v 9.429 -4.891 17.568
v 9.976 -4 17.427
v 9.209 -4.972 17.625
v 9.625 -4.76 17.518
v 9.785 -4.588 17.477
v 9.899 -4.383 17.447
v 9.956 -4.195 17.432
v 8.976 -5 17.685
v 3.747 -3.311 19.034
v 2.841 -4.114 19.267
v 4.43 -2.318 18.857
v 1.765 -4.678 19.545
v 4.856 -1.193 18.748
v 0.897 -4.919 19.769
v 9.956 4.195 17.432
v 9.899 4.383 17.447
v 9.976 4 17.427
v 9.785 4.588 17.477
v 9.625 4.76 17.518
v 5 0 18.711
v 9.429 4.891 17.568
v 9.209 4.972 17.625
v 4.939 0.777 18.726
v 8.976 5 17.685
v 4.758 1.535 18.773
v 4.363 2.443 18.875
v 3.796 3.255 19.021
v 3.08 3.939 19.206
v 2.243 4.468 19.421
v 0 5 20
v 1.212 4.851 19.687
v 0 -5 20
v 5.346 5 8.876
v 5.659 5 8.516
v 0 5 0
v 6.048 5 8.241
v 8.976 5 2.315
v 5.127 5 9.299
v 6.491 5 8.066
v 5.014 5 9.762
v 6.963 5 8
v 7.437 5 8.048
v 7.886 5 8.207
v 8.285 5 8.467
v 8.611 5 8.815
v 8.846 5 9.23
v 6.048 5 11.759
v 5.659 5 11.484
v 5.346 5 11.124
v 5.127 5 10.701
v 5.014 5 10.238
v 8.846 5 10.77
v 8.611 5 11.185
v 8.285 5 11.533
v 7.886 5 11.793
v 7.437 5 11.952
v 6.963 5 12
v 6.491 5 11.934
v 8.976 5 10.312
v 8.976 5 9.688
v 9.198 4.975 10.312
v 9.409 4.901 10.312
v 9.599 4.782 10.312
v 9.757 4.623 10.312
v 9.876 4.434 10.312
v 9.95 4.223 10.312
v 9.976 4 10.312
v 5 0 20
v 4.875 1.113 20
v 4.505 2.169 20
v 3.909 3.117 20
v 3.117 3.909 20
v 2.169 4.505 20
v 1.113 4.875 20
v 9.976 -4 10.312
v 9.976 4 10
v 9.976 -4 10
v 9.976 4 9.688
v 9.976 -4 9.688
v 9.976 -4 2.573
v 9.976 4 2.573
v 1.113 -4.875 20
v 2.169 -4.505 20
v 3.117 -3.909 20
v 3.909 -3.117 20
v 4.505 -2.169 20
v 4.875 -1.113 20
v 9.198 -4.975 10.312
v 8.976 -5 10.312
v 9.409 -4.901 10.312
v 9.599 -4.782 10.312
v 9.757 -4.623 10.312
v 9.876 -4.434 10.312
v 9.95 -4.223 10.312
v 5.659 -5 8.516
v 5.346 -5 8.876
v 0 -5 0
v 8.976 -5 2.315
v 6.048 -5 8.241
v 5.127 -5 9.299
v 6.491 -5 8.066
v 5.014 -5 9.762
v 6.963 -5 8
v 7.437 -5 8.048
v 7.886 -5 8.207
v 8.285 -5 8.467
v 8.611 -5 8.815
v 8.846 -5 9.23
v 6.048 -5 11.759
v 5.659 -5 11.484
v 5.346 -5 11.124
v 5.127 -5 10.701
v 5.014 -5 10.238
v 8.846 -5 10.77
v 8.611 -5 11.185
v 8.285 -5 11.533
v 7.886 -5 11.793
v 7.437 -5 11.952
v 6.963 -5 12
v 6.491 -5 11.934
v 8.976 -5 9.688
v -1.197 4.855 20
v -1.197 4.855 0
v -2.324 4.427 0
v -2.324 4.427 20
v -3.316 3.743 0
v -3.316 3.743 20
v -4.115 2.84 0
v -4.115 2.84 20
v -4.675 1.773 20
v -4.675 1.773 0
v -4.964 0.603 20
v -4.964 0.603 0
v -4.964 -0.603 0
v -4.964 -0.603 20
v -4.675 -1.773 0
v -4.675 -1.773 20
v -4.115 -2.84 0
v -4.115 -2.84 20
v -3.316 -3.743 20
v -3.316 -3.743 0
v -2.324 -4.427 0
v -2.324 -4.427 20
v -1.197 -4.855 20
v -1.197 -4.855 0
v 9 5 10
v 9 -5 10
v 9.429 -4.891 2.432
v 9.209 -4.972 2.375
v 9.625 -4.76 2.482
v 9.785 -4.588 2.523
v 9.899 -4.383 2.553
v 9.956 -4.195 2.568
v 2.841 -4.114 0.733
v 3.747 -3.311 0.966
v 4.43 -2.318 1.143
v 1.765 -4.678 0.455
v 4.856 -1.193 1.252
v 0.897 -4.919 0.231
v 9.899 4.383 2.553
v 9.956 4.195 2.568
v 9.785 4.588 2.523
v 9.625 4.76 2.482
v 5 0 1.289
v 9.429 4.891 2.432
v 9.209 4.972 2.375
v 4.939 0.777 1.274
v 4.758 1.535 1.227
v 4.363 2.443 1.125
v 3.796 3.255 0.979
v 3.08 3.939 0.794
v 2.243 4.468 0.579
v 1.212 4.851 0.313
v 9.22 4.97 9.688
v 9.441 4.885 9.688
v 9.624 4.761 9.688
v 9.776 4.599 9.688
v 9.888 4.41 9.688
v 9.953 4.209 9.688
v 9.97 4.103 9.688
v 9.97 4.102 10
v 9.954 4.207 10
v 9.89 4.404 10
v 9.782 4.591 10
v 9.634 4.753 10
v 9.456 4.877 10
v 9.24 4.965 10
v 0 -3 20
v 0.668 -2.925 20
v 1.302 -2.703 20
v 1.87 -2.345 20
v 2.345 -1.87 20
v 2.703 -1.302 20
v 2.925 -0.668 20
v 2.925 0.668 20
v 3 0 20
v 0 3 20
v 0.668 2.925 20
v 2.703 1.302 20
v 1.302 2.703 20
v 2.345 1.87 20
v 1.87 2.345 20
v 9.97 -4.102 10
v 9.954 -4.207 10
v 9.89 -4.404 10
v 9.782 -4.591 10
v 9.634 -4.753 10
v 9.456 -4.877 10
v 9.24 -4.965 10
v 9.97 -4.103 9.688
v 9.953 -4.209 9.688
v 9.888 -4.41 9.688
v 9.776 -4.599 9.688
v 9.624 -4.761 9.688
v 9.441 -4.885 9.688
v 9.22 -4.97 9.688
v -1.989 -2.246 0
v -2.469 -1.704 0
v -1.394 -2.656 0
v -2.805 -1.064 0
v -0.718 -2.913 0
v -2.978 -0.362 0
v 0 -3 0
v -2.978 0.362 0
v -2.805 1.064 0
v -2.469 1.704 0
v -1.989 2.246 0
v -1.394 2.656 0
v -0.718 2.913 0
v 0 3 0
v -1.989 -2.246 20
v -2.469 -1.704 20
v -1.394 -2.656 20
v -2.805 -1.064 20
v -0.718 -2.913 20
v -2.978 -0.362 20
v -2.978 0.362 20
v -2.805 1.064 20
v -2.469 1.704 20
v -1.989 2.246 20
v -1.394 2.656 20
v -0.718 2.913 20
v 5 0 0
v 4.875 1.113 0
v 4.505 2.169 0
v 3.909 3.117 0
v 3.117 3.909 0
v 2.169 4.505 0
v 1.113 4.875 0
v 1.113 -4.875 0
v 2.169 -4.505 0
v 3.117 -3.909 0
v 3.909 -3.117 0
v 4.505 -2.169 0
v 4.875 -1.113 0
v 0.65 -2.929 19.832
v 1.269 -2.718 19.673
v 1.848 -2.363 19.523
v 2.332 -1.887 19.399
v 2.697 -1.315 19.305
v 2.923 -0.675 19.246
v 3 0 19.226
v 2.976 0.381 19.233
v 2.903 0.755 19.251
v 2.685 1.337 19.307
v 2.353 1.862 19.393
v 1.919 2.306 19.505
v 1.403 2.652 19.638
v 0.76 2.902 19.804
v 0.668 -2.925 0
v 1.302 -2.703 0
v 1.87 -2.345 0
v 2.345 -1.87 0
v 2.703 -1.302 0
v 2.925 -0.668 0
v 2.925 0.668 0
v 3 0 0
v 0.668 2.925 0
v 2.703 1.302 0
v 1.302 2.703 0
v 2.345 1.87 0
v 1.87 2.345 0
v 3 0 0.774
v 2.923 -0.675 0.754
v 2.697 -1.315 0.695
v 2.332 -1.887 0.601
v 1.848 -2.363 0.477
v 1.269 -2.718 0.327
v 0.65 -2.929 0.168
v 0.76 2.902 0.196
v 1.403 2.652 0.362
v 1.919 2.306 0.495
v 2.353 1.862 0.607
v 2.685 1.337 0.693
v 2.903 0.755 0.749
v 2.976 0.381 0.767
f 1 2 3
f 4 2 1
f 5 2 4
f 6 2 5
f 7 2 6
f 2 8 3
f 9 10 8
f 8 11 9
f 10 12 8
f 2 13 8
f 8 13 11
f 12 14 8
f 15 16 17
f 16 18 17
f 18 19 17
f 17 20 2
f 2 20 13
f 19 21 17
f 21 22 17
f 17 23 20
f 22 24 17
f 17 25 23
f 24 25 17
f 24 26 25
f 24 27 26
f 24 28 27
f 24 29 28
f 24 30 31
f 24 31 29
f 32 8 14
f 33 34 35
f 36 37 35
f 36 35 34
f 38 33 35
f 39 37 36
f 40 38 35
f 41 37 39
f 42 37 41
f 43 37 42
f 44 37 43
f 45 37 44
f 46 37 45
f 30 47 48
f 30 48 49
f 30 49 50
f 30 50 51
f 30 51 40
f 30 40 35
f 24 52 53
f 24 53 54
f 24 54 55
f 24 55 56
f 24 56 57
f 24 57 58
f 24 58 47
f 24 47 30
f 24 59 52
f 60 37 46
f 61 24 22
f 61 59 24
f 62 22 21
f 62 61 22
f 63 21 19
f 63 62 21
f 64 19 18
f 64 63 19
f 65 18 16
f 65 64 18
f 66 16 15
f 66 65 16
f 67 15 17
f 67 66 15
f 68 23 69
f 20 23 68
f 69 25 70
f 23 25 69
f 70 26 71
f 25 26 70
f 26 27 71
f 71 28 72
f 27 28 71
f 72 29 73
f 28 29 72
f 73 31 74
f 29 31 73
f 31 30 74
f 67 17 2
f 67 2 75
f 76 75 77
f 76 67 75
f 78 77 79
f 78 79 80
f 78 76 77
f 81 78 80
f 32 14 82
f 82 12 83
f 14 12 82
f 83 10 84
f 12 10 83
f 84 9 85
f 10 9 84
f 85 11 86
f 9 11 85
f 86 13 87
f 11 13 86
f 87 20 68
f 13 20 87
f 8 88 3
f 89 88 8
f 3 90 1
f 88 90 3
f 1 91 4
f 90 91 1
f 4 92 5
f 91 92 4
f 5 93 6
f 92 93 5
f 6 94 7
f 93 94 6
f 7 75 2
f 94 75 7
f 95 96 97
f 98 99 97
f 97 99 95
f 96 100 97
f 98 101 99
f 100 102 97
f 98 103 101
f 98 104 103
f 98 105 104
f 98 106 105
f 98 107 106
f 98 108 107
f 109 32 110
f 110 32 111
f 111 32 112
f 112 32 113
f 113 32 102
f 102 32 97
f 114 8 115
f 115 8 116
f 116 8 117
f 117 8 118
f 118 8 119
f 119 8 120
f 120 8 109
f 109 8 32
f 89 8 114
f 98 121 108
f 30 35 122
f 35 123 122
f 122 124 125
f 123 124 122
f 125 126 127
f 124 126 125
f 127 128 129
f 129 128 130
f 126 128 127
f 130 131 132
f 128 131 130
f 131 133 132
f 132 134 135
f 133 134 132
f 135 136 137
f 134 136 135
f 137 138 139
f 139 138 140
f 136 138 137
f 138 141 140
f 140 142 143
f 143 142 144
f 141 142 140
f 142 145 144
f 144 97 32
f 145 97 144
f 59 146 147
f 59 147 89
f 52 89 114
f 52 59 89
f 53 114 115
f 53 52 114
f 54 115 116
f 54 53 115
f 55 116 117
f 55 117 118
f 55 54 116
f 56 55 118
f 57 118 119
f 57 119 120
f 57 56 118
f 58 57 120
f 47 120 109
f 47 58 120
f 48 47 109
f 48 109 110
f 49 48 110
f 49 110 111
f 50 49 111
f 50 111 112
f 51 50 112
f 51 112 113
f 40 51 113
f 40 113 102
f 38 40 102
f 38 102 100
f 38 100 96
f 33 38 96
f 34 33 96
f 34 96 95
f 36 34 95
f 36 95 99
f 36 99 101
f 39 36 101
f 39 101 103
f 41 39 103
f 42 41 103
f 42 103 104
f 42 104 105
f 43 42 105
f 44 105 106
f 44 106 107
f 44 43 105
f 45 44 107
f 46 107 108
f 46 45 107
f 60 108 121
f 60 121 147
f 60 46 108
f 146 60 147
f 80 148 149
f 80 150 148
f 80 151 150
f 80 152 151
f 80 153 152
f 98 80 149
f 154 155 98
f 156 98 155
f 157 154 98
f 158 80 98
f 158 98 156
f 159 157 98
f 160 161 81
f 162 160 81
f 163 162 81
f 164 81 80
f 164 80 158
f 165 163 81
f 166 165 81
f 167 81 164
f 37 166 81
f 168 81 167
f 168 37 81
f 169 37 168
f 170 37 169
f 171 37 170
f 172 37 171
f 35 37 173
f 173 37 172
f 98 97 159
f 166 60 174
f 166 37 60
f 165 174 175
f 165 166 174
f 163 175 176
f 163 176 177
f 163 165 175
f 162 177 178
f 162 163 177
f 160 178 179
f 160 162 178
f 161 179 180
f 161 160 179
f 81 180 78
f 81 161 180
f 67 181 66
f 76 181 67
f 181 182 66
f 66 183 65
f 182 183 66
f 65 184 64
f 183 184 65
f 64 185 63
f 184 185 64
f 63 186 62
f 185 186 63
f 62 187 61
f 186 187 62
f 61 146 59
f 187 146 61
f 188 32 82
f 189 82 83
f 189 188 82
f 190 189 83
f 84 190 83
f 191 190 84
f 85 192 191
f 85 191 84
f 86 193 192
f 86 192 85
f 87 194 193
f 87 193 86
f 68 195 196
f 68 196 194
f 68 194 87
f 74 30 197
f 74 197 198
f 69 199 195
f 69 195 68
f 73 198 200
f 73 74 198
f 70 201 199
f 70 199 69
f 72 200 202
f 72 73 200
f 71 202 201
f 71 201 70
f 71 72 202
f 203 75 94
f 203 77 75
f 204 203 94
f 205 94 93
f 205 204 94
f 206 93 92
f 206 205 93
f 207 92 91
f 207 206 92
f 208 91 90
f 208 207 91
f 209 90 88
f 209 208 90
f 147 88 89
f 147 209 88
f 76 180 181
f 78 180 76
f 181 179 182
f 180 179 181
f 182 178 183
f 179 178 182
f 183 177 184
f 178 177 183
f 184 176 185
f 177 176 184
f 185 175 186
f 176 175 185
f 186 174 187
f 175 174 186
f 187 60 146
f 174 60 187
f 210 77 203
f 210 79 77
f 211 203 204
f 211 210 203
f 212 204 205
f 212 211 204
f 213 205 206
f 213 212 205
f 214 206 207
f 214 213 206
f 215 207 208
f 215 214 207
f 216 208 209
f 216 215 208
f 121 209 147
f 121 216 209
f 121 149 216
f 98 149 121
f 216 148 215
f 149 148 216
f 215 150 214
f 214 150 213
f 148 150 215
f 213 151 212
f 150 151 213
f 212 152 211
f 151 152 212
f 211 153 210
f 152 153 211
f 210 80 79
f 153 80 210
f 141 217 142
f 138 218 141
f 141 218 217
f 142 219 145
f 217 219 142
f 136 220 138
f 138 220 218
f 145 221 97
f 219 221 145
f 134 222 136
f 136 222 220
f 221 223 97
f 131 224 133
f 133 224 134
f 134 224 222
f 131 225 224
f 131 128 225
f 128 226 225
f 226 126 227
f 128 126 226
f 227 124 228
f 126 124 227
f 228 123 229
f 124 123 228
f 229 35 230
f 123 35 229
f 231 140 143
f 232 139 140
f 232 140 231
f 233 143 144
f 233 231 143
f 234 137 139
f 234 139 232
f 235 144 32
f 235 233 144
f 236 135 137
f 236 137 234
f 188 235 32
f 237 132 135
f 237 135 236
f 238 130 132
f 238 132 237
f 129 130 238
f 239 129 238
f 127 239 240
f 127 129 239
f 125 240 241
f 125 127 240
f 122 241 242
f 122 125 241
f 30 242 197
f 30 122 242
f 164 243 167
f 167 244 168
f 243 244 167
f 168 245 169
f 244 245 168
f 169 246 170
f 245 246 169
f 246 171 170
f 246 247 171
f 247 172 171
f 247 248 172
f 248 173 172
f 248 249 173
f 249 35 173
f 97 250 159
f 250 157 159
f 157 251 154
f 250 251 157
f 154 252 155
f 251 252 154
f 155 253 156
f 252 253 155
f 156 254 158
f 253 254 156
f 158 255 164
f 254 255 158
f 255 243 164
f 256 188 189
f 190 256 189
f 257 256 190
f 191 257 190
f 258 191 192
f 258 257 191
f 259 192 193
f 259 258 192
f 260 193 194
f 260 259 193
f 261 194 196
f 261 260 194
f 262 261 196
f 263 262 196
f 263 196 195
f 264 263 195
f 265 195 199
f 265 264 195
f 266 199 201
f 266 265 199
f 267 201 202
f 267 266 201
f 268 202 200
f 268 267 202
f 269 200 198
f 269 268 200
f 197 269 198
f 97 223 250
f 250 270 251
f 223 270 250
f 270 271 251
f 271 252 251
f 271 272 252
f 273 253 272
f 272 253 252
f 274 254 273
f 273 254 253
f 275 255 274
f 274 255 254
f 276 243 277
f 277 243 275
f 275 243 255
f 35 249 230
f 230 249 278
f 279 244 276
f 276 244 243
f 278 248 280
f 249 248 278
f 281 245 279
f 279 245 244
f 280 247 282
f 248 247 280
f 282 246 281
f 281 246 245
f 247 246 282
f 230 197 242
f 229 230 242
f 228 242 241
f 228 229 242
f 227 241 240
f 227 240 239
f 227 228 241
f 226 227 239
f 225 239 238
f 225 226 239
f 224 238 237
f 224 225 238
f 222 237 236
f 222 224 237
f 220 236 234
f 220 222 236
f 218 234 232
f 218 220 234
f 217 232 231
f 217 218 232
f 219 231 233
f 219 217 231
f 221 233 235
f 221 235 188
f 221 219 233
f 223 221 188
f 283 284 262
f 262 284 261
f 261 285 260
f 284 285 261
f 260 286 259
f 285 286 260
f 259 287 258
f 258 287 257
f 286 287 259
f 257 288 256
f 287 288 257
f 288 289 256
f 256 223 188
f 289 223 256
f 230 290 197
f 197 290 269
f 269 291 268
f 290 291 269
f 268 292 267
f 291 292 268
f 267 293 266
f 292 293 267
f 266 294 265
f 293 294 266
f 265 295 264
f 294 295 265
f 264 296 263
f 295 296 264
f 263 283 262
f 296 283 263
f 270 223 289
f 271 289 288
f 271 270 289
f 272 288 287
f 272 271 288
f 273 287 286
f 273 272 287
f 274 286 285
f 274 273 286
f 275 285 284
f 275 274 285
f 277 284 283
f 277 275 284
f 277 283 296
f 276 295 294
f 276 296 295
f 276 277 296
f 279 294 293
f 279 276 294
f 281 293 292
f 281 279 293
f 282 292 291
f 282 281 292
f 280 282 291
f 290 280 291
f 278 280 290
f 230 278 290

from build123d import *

# Parameters (mm, degrees)
SKETCH_R     = 5
SKETCH_R_2   = 3
PAD_DEPTH    = 20
SKETCH002_R  = 2
PAD001_DEPTH = 5
SKETCH003_R  = 3
POCKET_DEPTH = 20.001
FILLET_R     = 1


with BuildPart() as body:
    # Sketch → Pad (new body)
    with BuildSketch(Plane.XY):
        Circle(SKETCH_R)
        Circle(SKETCH_R_2, mode=Mode.SUBTRACT)
    extrude(amount=PAD_DEPTH)


with BuildPart() as body002:
    # Sketch002 → Pad001 (new body, symmetric)
    with BuildSketch(Plane.XZ):
        Polygon((9.975506, 17.427483), (0, 20), (0, 0), (9.975506, 2.572517), align=None)
        with Locations((7, 10)):
            Circle(SKETCH002_R, mode=Mode.SUBTRACT)
    extrude(amount=PAD001_DEPTH, both=True)

    # Boolean: union Body
    add(body.part)

    # Sketch003 (on Face11 of Boolean) → Pocket (cut, through all)
    with BuildSketch(Plane(origin=(0, 0, 0), x_dir=(1, 0, 0), z_dir=(0, 0, -1))):
        Circle(SKETCH003_R)
    extrude(amount=-POCKET_DEPTH, mode=Mode.SUBTRACT)

    # Fillet
    fillet_edges = [body002.edges().sort_by_distance(p)[0] for p in [
        (9.975506, -5, 10),
        (9.975506, 5, 10),
    ]]
    fillet(fillet_edges, radius=FILLET_R)


solid = body002.part
